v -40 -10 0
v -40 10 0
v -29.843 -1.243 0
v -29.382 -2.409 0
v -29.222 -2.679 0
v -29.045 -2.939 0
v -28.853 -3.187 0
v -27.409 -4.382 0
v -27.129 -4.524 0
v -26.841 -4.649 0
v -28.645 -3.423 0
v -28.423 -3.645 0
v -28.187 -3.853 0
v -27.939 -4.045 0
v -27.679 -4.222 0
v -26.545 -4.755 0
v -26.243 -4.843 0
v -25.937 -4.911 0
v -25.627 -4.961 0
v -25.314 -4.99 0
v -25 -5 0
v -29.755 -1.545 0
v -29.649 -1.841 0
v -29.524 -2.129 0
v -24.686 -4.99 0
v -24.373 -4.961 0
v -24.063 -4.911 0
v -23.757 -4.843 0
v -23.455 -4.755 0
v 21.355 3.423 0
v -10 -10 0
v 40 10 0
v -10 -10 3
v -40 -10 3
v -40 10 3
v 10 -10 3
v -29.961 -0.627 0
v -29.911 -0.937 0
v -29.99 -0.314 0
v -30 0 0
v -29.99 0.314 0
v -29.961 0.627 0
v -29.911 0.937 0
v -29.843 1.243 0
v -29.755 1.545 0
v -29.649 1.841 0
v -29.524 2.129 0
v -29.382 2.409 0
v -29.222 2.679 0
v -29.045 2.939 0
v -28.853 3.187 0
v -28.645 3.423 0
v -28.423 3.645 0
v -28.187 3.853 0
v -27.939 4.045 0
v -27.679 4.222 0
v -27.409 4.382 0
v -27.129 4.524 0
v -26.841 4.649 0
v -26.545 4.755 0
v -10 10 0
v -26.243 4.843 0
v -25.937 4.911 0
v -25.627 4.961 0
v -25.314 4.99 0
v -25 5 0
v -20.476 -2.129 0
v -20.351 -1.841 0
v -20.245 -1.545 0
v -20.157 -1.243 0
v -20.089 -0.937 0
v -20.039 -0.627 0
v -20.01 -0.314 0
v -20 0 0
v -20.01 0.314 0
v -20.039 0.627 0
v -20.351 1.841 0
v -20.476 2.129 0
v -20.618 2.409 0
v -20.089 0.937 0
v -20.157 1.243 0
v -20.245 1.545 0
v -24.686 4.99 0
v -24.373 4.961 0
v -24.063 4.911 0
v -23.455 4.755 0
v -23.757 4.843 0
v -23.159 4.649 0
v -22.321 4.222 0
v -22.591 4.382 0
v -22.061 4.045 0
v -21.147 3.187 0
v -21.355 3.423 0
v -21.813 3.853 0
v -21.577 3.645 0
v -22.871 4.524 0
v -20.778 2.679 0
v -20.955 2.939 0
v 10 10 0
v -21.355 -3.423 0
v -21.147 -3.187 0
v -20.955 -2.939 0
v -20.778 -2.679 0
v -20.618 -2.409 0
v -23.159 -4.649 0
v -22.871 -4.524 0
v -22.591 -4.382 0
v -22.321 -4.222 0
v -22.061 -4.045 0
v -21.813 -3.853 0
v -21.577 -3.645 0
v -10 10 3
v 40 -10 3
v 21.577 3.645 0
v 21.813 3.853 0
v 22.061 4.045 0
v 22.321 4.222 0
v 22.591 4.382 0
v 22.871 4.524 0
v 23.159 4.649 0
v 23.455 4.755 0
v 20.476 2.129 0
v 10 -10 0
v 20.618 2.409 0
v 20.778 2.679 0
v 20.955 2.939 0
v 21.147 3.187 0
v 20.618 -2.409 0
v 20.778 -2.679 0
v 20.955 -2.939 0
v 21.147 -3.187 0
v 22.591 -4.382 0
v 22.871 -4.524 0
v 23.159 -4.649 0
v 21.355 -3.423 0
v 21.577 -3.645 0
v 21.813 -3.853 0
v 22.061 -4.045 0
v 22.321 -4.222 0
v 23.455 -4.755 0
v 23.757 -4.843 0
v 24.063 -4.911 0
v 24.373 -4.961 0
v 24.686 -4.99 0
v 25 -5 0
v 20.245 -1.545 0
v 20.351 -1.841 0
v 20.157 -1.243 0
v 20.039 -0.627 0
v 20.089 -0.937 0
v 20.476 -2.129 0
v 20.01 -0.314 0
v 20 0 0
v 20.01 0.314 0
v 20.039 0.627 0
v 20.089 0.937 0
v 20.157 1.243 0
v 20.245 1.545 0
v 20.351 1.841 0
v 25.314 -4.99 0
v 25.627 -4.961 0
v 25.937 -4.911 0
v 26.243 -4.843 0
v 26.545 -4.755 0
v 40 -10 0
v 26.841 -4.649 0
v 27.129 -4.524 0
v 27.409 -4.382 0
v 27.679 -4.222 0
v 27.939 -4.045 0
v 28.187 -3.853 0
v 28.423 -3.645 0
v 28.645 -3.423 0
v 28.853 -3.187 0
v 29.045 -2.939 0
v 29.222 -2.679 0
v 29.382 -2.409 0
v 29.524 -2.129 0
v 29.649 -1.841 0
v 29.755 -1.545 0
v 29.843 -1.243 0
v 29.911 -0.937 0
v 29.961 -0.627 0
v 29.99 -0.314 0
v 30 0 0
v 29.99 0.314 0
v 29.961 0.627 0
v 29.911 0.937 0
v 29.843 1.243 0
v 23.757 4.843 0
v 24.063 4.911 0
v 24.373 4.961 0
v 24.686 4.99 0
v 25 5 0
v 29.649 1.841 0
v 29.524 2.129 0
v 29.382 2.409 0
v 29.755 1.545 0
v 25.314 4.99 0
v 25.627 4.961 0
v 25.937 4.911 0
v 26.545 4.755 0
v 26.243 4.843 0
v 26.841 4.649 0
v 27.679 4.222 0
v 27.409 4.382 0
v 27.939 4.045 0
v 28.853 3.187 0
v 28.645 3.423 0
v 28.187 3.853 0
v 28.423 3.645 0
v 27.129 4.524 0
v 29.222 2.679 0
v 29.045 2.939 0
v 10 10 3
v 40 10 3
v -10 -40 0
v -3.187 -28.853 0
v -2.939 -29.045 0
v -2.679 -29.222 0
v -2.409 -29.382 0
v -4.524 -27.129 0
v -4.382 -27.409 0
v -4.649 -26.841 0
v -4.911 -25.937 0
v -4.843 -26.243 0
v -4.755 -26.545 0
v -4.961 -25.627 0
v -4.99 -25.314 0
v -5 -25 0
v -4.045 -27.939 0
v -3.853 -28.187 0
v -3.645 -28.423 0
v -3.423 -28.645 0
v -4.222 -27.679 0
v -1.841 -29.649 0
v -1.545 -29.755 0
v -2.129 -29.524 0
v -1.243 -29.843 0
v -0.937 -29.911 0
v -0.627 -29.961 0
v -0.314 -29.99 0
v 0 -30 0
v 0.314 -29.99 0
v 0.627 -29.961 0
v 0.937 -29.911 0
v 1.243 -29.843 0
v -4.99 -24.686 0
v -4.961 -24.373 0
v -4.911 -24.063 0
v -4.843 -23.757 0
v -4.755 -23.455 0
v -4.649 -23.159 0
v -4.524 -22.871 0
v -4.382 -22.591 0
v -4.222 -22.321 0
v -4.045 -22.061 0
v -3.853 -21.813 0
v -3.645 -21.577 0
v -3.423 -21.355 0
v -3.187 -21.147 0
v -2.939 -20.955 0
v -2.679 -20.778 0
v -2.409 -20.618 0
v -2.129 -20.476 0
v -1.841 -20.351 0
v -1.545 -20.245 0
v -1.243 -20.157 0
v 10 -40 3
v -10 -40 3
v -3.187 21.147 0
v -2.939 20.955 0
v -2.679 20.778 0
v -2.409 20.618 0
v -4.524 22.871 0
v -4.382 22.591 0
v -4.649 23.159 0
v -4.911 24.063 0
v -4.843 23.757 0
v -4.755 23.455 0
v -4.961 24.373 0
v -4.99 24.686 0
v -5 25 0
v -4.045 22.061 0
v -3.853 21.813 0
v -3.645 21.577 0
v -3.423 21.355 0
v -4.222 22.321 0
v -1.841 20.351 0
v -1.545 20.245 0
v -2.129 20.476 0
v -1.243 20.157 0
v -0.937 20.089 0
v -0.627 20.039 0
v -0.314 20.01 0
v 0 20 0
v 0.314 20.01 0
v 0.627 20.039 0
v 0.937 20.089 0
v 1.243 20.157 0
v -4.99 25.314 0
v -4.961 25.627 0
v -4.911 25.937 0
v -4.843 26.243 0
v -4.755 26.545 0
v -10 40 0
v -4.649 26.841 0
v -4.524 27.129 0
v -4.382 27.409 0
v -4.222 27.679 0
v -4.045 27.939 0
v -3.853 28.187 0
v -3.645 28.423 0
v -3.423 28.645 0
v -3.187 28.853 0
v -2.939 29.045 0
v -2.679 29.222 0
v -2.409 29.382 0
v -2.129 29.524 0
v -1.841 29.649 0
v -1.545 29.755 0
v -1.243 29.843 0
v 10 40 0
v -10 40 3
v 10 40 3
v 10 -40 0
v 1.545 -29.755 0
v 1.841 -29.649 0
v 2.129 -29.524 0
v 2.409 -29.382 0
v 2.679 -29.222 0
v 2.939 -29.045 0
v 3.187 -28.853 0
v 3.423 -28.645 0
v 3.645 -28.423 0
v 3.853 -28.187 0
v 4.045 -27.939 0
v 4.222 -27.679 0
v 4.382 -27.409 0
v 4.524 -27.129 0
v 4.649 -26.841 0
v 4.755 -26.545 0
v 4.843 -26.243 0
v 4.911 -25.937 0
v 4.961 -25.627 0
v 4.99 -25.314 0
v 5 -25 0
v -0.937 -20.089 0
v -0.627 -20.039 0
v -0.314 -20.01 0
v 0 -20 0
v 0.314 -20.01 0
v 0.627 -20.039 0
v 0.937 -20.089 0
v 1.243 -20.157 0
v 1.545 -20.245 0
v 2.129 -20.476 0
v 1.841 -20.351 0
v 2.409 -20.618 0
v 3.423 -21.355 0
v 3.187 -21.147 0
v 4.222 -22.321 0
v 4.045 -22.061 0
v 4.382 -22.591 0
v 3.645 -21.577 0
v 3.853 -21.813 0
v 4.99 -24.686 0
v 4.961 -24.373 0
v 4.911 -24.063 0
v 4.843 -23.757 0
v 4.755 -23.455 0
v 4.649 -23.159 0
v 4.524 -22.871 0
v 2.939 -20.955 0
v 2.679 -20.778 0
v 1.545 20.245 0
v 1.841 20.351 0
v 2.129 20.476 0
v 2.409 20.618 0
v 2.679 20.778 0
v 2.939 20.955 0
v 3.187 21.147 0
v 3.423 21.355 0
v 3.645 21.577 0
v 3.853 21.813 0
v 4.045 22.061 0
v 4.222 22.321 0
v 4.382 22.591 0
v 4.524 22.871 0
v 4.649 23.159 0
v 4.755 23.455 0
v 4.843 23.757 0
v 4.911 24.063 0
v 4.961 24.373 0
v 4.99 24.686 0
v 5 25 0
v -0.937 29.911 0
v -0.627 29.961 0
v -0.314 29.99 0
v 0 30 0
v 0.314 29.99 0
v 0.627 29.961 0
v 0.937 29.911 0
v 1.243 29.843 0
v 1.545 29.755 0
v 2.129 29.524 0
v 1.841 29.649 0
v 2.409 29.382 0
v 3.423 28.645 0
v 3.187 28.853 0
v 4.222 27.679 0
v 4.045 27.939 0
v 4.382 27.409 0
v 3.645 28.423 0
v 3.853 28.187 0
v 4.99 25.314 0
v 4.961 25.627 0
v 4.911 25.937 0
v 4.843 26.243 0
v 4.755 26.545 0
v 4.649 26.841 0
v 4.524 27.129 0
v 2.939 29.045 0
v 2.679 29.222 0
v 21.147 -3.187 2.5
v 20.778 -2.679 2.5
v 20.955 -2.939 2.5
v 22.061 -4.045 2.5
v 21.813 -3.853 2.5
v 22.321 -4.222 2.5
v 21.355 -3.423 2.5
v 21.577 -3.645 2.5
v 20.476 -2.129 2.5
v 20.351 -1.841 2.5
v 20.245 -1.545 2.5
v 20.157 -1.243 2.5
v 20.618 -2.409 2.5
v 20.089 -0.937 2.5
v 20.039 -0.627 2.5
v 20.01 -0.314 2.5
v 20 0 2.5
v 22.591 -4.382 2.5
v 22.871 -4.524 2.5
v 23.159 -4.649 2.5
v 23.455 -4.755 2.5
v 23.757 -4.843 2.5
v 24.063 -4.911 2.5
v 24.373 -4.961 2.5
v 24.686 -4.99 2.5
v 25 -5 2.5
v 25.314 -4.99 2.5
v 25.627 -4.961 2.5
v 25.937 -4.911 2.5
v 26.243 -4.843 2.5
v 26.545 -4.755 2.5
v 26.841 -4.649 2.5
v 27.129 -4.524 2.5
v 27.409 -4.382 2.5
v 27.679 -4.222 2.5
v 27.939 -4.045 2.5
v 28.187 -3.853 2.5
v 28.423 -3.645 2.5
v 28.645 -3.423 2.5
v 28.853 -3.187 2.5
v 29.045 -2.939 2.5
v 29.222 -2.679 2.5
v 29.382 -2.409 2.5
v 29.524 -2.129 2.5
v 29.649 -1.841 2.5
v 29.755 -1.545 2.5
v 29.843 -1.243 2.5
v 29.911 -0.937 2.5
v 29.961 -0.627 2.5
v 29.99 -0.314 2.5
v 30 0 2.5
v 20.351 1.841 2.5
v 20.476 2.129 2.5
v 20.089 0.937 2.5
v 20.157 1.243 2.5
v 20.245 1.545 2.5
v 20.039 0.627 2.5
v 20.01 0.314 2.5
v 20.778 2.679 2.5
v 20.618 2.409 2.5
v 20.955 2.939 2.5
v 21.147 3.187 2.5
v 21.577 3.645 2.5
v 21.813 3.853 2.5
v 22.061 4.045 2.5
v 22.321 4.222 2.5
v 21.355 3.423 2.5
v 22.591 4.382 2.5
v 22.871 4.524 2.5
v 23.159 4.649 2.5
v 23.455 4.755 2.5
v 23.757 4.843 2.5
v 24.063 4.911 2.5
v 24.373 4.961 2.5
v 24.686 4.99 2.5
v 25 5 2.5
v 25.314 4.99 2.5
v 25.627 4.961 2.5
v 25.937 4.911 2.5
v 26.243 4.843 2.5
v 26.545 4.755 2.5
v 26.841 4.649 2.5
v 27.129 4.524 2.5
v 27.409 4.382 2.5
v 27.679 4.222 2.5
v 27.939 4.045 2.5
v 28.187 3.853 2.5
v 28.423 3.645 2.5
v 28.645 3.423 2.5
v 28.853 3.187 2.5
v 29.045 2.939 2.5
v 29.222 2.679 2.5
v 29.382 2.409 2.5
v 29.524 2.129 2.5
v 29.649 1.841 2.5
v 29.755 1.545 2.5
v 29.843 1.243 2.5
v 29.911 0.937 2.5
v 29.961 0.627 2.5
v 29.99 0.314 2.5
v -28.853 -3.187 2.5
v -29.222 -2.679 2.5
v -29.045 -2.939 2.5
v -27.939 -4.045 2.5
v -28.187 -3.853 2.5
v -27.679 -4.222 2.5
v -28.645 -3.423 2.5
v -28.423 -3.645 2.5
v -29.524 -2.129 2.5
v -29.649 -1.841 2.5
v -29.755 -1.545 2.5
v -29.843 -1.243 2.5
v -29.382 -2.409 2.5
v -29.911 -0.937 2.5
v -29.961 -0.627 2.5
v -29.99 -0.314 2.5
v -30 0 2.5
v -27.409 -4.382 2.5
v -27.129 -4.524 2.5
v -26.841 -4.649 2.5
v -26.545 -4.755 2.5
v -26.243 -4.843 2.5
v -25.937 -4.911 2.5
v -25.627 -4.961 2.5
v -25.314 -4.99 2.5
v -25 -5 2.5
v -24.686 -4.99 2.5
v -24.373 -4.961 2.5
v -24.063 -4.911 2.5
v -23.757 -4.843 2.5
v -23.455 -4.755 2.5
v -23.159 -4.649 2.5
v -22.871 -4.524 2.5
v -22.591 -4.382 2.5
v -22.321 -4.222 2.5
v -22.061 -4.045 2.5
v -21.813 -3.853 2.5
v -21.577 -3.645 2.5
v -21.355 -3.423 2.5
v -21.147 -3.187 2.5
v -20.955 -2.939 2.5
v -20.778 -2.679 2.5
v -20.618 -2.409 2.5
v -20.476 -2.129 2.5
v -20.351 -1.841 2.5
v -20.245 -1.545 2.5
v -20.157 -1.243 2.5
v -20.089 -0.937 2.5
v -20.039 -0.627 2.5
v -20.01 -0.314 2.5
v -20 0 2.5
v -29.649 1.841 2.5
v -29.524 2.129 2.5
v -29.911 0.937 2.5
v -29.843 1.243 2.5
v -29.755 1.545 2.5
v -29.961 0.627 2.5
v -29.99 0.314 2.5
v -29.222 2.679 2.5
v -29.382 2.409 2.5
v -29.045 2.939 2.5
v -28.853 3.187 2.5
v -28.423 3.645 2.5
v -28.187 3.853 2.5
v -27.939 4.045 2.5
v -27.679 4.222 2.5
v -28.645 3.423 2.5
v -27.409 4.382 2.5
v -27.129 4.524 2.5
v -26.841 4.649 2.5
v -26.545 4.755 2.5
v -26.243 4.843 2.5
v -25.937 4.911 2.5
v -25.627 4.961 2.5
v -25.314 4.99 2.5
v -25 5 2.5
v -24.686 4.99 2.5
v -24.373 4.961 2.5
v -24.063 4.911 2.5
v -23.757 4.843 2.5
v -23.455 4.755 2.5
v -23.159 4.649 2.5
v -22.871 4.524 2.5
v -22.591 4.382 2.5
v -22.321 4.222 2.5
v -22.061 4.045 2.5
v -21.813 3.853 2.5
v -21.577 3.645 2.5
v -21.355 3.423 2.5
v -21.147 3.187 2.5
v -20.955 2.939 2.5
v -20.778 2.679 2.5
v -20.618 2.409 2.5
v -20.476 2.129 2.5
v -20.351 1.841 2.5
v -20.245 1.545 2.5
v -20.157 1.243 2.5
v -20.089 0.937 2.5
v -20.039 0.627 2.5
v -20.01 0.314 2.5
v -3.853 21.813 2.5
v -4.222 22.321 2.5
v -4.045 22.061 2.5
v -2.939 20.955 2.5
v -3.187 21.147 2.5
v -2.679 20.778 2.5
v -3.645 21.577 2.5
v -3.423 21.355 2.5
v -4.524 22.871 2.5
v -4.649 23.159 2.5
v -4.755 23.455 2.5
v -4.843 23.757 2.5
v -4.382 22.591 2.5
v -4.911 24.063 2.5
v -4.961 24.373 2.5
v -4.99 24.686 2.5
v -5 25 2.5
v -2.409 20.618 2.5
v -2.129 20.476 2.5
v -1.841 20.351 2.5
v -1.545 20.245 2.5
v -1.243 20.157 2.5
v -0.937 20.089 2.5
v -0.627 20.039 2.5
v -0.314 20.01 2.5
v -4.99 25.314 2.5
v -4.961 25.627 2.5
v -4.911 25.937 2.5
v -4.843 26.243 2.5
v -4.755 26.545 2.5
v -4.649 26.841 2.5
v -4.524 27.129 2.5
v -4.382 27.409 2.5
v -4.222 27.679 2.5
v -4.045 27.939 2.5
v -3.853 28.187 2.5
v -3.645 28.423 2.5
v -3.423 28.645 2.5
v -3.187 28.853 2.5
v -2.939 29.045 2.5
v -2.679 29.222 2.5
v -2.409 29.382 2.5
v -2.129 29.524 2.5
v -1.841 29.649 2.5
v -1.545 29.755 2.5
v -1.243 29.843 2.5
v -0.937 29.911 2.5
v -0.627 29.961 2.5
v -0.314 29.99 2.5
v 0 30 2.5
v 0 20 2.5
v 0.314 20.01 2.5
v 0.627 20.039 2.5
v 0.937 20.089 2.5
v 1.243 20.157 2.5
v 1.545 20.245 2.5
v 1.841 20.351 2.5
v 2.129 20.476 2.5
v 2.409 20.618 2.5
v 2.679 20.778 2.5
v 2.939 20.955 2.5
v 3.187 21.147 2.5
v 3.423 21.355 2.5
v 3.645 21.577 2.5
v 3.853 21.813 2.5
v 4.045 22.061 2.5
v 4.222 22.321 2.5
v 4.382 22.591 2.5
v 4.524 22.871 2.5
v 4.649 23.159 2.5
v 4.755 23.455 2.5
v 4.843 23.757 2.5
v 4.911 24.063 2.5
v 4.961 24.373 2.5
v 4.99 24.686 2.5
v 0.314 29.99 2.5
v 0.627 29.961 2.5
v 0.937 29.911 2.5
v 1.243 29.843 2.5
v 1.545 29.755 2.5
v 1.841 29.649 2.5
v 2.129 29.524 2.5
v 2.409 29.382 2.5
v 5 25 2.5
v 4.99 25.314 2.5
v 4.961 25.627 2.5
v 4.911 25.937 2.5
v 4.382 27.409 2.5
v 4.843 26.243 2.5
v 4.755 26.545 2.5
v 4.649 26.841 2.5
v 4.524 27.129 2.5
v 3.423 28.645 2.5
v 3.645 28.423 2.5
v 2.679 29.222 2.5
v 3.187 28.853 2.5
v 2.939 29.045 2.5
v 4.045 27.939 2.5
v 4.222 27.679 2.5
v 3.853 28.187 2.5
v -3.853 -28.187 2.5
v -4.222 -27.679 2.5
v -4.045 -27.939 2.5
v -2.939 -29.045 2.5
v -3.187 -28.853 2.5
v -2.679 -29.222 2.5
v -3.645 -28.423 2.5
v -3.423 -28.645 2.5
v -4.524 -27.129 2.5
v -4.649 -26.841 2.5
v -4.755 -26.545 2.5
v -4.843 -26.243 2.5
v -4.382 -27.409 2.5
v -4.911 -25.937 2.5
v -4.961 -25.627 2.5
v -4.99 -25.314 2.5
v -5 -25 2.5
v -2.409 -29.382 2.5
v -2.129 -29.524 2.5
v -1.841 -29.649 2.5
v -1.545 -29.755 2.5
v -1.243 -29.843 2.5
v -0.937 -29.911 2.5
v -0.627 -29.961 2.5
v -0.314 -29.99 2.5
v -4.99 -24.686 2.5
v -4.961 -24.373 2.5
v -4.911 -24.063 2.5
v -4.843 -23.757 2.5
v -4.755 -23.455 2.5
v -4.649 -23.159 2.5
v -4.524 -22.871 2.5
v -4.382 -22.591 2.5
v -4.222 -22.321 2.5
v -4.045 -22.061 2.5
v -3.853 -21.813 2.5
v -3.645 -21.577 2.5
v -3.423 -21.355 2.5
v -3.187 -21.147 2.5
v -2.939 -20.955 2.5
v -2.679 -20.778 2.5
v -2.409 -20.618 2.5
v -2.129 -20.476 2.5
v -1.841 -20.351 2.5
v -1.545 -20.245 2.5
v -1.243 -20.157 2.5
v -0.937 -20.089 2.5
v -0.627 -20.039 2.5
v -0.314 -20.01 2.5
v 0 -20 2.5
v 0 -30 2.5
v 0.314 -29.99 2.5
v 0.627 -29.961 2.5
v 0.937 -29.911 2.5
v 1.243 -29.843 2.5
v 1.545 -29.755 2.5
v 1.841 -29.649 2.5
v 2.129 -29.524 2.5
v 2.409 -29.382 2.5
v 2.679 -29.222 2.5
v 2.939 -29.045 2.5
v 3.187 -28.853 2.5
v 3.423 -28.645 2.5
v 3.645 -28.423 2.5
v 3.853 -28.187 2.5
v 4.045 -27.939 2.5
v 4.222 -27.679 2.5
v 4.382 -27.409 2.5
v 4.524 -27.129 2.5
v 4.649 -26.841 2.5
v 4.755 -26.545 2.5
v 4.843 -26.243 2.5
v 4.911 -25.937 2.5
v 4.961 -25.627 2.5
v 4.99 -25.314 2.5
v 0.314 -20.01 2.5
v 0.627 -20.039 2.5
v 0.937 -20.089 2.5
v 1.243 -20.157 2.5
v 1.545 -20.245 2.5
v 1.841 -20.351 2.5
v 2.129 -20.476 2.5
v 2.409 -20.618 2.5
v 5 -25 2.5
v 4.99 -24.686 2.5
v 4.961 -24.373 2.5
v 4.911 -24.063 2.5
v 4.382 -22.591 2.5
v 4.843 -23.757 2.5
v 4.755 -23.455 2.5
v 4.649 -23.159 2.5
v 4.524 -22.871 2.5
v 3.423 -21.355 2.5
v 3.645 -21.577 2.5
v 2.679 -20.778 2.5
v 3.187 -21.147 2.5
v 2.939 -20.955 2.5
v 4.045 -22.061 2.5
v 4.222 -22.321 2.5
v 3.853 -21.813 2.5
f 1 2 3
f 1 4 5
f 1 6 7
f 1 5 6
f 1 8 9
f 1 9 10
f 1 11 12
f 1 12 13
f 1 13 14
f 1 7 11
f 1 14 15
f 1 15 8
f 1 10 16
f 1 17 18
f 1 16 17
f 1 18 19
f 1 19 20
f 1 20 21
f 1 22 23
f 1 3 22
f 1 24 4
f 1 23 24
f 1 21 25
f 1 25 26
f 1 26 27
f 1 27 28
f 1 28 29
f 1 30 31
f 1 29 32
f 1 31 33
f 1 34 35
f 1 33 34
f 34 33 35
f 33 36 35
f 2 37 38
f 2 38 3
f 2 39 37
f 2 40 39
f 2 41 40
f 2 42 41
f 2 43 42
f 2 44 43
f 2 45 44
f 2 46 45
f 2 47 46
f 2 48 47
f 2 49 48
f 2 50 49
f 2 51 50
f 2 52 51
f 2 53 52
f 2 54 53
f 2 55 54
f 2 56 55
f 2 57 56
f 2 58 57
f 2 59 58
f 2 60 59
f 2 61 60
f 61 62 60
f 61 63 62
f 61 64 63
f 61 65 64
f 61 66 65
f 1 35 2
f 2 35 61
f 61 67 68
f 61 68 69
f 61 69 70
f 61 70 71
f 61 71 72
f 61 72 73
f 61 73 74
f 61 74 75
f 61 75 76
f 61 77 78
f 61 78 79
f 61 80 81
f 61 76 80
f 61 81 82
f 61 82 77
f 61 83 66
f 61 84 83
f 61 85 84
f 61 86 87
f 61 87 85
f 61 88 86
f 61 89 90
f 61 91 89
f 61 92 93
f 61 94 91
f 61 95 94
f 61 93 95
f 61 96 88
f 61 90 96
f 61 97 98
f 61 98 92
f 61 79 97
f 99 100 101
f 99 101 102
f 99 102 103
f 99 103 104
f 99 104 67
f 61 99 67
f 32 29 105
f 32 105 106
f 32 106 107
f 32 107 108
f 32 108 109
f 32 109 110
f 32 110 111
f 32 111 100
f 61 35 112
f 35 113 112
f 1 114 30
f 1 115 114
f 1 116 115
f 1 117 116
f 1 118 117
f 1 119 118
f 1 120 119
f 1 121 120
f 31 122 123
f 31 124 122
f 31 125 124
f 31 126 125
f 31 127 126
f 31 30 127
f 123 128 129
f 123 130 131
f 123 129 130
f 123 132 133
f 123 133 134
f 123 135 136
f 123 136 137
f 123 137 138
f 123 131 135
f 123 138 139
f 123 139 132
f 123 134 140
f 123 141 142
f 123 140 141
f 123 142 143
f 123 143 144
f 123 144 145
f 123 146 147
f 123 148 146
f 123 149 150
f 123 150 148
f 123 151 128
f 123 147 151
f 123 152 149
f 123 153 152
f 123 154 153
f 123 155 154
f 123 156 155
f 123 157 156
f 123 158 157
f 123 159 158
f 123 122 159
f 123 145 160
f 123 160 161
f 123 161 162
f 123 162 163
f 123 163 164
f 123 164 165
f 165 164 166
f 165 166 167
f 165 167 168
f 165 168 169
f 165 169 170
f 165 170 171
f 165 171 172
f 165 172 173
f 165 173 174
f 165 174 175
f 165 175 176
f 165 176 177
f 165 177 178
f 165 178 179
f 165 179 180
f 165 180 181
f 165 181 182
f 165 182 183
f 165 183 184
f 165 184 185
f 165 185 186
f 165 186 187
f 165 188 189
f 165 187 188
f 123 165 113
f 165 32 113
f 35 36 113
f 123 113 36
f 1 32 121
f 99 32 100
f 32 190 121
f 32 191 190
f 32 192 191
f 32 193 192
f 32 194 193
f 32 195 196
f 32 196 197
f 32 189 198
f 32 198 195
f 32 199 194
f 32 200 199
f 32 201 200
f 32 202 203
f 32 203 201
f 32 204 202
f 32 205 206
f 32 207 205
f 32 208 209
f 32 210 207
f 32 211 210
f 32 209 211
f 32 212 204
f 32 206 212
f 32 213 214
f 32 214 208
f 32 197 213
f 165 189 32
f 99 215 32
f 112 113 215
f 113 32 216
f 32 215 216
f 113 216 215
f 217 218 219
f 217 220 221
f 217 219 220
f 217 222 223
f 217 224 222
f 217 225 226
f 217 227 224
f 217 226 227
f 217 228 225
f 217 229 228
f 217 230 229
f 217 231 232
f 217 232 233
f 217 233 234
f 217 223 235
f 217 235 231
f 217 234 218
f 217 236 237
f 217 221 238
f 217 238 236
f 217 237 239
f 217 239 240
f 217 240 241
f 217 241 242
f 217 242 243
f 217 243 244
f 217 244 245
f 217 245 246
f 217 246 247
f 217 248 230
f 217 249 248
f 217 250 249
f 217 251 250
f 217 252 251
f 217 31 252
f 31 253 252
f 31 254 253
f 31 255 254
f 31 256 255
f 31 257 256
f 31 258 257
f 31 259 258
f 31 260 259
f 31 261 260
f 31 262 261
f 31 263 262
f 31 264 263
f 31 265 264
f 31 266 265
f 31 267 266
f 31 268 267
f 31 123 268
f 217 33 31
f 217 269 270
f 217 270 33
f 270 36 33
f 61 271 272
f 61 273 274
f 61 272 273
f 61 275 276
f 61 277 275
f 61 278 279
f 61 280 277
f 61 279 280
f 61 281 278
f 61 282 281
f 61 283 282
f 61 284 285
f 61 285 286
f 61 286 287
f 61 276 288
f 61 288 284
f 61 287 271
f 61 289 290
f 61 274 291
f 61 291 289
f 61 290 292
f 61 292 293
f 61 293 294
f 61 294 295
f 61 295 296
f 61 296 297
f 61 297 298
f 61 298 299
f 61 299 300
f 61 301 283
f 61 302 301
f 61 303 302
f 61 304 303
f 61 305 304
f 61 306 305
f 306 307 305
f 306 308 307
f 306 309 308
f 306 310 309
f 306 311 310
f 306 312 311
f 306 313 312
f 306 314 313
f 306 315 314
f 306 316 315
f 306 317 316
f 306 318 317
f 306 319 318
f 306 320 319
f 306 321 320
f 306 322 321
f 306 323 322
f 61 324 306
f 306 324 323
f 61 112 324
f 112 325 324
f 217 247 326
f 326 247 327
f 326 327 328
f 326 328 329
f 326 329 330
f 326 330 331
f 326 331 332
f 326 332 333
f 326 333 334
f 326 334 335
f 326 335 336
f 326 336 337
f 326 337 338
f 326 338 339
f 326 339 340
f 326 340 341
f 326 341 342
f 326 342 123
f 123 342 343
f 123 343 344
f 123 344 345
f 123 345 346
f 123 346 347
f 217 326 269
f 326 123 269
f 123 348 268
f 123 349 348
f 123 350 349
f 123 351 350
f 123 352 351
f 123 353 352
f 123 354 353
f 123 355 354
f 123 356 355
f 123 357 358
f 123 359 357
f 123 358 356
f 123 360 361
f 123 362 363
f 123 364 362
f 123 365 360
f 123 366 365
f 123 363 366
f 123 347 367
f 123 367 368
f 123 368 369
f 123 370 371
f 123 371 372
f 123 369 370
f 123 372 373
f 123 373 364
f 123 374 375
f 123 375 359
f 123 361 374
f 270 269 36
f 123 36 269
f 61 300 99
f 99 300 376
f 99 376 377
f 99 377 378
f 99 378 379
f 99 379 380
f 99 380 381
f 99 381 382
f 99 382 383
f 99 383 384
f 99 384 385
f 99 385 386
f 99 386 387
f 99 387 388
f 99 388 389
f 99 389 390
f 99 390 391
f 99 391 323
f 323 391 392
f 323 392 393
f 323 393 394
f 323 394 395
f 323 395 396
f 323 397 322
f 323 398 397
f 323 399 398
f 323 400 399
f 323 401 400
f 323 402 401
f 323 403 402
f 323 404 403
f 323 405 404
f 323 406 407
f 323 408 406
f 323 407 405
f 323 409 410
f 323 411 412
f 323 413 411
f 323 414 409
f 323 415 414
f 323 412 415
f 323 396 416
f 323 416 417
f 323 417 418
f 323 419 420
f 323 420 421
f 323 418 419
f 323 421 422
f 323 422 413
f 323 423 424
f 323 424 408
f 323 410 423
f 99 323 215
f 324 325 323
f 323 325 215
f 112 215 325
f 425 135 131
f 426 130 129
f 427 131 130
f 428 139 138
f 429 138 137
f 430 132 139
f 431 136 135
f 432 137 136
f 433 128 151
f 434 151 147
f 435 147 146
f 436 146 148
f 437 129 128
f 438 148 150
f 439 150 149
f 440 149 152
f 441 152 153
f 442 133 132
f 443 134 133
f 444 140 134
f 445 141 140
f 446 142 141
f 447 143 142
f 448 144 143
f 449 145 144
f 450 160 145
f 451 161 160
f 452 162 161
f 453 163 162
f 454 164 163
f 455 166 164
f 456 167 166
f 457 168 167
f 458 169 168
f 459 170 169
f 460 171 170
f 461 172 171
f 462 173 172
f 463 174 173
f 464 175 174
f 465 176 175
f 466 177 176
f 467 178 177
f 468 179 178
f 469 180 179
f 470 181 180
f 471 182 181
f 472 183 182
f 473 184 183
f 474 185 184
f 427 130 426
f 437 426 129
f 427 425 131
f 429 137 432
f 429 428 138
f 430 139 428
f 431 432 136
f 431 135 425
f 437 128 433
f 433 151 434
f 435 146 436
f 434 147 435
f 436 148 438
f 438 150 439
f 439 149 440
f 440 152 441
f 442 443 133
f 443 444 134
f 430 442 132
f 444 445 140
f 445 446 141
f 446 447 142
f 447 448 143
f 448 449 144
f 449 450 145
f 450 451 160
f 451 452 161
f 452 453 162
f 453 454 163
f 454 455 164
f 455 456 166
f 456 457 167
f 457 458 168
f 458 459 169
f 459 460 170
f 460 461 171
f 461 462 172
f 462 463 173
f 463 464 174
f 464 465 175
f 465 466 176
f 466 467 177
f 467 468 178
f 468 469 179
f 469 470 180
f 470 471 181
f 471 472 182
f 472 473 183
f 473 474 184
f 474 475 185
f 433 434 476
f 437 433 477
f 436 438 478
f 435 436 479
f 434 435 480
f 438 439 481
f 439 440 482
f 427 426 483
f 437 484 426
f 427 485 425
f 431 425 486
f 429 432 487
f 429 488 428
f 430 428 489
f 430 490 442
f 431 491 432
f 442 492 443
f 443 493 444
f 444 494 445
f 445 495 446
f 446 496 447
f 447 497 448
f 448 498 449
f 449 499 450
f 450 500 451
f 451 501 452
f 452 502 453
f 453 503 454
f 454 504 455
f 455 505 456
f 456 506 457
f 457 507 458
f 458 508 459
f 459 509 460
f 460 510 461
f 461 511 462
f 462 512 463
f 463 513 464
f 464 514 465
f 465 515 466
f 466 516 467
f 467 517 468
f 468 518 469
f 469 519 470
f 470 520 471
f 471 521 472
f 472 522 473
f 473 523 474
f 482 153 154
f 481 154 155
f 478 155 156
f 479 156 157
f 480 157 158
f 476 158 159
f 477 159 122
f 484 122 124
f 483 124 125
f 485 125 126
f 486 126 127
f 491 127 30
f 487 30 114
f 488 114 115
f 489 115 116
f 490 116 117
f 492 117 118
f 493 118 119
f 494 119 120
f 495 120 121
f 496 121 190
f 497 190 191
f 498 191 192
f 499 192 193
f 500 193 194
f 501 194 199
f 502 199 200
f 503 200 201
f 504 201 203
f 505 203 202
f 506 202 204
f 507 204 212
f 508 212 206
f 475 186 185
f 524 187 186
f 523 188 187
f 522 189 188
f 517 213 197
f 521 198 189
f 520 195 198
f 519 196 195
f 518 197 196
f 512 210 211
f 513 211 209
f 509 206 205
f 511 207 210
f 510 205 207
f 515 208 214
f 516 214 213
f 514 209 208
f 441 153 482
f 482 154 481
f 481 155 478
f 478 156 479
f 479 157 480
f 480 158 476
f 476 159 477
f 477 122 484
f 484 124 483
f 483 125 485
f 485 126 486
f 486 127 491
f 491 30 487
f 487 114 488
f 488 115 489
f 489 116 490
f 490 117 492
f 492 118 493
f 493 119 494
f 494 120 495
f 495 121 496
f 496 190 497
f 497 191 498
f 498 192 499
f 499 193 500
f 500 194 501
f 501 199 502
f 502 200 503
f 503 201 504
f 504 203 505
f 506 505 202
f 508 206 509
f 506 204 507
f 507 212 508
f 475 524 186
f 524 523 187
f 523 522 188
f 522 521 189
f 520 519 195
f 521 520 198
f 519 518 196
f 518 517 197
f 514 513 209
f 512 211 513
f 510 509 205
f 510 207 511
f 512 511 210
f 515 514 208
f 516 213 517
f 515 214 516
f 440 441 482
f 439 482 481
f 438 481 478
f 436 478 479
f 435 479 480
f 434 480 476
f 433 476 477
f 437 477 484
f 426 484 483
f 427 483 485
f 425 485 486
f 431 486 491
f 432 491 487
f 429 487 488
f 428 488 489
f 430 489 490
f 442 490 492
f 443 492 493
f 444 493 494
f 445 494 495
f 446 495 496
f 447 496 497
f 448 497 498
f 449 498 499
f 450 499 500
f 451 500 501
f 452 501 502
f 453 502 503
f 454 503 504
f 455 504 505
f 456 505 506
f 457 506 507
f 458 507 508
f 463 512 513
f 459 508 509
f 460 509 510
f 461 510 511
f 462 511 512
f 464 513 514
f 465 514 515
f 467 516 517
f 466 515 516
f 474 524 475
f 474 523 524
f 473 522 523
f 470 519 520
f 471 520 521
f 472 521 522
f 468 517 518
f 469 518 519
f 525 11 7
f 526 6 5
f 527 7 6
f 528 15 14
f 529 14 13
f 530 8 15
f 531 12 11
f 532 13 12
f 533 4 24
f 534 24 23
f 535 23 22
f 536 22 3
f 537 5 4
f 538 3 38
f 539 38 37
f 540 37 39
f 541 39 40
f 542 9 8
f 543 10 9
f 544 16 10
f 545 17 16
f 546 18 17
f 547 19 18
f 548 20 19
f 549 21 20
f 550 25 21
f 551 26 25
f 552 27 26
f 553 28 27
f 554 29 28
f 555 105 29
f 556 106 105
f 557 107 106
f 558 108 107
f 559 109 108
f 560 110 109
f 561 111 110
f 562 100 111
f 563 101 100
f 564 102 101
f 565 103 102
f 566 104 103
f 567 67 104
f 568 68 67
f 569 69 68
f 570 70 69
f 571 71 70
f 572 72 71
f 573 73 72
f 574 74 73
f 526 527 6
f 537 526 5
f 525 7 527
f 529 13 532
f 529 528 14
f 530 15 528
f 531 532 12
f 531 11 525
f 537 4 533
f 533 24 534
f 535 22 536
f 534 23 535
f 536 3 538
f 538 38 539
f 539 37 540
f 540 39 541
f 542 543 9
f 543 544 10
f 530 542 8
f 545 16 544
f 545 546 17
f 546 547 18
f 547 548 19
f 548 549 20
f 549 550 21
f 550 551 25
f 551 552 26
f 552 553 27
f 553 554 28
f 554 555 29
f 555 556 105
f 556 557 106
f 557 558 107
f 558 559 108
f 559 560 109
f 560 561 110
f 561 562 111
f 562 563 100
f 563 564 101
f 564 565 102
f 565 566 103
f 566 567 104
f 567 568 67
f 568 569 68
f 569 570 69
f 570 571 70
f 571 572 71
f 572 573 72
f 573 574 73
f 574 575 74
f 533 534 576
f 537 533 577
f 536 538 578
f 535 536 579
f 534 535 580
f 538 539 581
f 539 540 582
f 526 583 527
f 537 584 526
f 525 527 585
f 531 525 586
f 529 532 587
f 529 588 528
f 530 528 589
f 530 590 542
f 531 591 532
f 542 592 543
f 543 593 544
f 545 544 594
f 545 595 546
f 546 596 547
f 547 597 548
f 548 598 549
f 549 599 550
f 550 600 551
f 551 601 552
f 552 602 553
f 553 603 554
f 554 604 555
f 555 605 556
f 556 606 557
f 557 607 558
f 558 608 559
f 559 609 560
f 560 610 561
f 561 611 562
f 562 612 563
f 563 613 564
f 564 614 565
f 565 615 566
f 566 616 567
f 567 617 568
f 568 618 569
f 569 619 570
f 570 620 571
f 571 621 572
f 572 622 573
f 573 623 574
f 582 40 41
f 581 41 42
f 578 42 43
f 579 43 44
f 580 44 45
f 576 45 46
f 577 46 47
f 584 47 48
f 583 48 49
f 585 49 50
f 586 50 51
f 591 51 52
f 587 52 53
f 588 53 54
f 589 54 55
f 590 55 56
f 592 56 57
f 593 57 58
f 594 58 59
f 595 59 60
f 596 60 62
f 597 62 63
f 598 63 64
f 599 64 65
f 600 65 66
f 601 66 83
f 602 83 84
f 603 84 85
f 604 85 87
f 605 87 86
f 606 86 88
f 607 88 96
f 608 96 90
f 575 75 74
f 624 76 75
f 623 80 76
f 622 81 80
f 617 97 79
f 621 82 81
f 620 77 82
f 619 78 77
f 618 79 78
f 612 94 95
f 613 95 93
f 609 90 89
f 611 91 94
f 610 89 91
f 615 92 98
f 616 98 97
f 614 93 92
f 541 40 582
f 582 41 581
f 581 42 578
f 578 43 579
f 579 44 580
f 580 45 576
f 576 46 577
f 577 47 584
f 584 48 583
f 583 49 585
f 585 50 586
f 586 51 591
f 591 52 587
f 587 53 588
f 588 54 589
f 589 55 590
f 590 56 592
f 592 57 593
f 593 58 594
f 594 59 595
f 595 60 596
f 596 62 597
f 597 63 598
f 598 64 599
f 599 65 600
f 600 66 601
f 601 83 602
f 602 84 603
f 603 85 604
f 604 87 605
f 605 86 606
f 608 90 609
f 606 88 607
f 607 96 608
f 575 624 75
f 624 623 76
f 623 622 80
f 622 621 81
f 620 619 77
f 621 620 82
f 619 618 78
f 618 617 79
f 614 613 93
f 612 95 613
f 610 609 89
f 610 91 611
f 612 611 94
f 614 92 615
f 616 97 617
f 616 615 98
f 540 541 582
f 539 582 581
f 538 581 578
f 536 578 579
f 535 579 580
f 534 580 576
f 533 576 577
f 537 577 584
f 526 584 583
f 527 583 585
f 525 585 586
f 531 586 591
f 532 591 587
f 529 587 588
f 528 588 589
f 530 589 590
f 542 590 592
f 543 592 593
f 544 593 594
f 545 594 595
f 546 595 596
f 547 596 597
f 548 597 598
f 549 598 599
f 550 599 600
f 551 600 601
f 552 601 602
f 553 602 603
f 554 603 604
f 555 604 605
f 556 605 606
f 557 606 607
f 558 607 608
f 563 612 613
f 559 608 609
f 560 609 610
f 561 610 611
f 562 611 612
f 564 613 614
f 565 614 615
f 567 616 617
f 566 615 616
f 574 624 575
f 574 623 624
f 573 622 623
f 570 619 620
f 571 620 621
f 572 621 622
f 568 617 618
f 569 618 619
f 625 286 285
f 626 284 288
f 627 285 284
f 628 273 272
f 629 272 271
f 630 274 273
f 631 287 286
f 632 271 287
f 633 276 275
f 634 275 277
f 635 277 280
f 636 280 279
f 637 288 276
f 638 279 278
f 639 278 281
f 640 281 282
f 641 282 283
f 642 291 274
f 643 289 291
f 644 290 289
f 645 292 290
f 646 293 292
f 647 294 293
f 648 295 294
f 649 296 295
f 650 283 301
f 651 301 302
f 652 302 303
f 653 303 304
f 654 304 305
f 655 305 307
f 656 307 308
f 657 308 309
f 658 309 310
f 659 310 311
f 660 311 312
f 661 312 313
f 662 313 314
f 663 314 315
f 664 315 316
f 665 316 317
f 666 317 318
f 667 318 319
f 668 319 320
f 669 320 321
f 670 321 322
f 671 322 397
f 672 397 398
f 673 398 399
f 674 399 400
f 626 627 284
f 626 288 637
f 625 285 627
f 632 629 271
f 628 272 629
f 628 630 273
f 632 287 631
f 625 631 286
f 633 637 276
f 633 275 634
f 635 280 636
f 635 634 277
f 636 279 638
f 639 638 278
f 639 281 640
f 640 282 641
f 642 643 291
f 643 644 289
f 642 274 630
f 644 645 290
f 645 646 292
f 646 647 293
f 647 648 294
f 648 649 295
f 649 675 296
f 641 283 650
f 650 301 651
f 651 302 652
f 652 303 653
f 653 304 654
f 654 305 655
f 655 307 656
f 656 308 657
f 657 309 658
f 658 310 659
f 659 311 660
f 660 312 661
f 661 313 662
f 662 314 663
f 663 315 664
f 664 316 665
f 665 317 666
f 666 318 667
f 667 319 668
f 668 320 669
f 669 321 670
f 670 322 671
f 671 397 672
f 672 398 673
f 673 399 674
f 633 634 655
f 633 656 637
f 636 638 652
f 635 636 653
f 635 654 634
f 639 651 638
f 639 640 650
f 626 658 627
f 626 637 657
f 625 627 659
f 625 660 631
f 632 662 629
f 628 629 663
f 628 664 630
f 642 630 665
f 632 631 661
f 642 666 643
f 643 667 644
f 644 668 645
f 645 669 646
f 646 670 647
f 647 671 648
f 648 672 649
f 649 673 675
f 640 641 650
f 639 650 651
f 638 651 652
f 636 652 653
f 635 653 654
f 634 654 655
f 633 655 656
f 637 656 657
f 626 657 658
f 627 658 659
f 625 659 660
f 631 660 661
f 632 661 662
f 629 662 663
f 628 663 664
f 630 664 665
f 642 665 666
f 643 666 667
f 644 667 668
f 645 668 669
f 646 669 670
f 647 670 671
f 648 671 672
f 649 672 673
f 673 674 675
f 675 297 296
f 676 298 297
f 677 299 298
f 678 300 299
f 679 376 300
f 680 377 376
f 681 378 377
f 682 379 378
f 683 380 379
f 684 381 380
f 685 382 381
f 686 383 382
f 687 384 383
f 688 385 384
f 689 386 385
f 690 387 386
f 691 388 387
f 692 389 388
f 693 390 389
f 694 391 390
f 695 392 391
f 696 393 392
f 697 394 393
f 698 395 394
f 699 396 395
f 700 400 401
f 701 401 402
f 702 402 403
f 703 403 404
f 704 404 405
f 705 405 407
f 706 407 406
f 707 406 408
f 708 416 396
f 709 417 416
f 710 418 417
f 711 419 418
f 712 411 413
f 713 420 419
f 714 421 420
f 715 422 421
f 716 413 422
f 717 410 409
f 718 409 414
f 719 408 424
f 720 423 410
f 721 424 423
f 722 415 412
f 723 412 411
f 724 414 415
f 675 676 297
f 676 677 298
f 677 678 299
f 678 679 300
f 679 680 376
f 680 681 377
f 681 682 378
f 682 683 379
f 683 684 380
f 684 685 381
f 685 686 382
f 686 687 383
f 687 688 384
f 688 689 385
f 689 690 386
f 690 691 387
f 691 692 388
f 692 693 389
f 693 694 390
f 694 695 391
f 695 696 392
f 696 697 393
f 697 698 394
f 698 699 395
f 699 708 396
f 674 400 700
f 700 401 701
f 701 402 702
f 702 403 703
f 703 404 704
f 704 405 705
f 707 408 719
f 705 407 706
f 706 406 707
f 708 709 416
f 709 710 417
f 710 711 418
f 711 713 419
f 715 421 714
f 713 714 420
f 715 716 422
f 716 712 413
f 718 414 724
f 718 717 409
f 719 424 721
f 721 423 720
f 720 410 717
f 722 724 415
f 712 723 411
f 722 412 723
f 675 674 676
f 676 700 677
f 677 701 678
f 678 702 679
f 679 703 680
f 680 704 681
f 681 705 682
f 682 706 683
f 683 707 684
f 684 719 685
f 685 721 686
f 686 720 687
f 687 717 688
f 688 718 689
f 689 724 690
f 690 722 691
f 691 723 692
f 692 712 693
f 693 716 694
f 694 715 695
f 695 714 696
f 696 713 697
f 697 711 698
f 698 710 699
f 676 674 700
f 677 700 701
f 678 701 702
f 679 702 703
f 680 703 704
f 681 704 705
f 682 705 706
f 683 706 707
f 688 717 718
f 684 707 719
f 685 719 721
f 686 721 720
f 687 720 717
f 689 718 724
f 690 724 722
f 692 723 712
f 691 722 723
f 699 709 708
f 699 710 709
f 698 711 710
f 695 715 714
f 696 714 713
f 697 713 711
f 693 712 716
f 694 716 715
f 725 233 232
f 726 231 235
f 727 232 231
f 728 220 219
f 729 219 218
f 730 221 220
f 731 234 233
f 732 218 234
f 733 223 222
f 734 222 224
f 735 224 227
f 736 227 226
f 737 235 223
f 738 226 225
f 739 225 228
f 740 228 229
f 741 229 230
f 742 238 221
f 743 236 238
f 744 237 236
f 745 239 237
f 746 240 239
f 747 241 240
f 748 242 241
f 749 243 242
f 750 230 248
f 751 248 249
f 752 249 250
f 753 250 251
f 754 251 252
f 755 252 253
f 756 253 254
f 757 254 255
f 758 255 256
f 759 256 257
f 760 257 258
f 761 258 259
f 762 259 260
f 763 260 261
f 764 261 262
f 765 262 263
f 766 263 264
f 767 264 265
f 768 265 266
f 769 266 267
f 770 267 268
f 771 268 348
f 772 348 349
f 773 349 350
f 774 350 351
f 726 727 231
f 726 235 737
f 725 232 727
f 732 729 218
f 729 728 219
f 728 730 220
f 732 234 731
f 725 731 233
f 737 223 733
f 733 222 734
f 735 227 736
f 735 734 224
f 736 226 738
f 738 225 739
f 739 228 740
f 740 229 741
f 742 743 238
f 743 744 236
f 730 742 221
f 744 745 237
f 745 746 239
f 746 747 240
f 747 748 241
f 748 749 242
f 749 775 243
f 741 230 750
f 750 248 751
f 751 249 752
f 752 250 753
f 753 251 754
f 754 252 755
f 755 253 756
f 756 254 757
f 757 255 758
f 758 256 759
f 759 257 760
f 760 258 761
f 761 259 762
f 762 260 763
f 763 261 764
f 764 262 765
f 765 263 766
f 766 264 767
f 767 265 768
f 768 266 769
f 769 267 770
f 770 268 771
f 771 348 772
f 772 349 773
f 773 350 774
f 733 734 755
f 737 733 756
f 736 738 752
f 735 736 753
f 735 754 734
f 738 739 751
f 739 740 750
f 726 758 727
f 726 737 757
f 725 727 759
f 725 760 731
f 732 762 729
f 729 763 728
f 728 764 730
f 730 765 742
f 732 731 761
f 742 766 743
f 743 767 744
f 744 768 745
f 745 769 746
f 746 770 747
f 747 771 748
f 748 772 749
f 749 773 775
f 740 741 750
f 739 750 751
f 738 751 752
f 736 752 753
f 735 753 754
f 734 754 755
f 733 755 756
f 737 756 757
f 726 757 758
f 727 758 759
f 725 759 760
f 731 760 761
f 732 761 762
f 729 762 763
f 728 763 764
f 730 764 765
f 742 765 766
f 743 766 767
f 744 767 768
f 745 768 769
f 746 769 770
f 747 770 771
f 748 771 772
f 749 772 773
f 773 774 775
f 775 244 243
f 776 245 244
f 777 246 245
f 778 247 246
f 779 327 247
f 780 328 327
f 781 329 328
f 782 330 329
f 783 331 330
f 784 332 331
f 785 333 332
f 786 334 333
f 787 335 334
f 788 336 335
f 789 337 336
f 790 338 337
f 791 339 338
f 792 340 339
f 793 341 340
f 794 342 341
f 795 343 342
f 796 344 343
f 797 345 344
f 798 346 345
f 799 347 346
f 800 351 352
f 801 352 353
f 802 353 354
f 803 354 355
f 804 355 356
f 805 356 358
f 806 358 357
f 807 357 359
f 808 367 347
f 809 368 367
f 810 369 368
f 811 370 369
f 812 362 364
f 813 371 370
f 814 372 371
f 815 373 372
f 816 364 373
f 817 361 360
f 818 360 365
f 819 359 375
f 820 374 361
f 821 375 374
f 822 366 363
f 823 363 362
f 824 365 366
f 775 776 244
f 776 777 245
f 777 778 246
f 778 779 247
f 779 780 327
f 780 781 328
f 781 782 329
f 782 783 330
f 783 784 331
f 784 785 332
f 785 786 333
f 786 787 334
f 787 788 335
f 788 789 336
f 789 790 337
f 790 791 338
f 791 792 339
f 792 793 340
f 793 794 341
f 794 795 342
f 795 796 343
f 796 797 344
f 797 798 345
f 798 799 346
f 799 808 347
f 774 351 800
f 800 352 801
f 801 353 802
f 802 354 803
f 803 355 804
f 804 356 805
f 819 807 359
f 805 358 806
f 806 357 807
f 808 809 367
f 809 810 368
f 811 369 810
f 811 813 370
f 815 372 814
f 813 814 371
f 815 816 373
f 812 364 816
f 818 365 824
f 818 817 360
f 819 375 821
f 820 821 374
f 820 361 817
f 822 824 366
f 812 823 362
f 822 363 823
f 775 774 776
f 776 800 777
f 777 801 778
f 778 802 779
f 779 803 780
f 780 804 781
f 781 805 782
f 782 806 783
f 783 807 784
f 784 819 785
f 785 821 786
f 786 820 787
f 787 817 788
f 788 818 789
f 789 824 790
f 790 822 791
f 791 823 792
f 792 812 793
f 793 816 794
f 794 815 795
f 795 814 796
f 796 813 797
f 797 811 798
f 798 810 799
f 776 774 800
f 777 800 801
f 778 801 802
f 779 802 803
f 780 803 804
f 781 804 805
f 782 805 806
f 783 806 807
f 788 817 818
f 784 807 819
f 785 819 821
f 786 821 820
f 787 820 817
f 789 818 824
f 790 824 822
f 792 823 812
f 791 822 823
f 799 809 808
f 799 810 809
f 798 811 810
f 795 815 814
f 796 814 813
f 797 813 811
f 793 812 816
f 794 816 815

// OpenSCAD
/*
 * OpenSCAD Script for a Multi-Measurement Calibration Cross
 *
 * This shape is designed to be a quick print (low height)
 * that provides multiple measurements for more
 * accurate shrinkage and hole compensation calculations.
 *
 * By averaging multiple measurements, you can
 * minimize the impact of any single small caliper error.
 */

// --- Main Parameters ---

total_length = 80;  // Total length/width of the cross
arm_width = 20;     // Width of each arm
height = 3;         // Height of the object (keeps print time low)
hole_diameter = 10; // Diameter of the small test holes
hole_position = 25; // Distance of holes from the center
smoothness = 100;   // $fn for cylinders (makes holes round)

// --- Main Body (Cross Shape) ---
module main_cross() {
    // Center the object at the origin
    translate([0, 0, height/2]) {
        union() {
            // X-Arm
            cube([total_length, arm_width, height], center = true);
            // Y-Arm
            cube([arm_width, total_length, height], center = true);
        }
    }
}

// --- Holes Module ---
module test_holes() {
    // Use height+2 as a "cutter" to ensure it goes all the way through
    cutter_height = height + 2; 
    
    // Hole in positive X-Arm
    translate([hole_position, 0, 0]) {
        cylinder(d = hole_diameter, h = cutter_height, center = true, $fn = smoothness);
    }
    
    // Hole in negative X-Arm
    translate([-hole_position, 0, 0]) {
        cylinder(d = hole_diameter, h = cutter_height, center = true, $fn = smoothness);
    }
    
    // Hole in positive Y-Arm
    translate([0, hole_position, 0]) {
        cylinder(d = hole_diameter, h = cutter_height, center = true, $fn = smoothness);
    }
    
    // Hole in negative Y-Arm
    translate([0, -hole_position, 0]) {
        cylinder(d = hole_diameter, h = cutter_height, center = true, $fn = smoothness);
    }
}

// --- Final Assembly ---
// Subtract the holes from the main cross
difference() {
    main_cross();
    test_holes();
}

/*
 * --- HOW TO USE THIS MODEL ---
 * 1. In OpenSCAD, press F6 to render, then export as STL.
 * 2. Print the new STL.
 * 3. With your calipers, take 8 measurements:
 *
 * Outer Measurements (for Shrinkage):
 * - A: Total X-length (Designed: 80mm)
 * - B: Total Y-length (Designed: 80mm)
 * - C: X-arm width (Designed: 20mm)
 * - D: Y-arm width (Designed: 20mm)
 *
 * Inner Measurements (for Hole Comp.):
 * - E: Hole 1 diameter (Designed: 10mm)
 * - F: Hole 2 diameter (Designed: 10mm)
 * - G: Hole 3 diameter (Designed: 10mm)
 * - H: Hole 4 diameter (Designed: 10mm)
 *
 * 4. Go to the web calculator:
 *
 * - In "1. Outer Dimensions":
 * - Set Designed Outer: (80+80+20+20) / 4 = 50
 * - Set Measured X: (A+B) / 2
 * - Set Measured Y: (C+D) / 2
 * - OR, even better:
 * - Set Designed Outer: 50
 * - Set Measured X: (A+B+C+D) / 4
 * - Set Measured Y: (A+B+C+D) / 4  <-- Use the same average
 *
 * - In "2. Inner Dimensions":
 * - Set Designed Hole: 10
 * - Set Measured Hole: (E+F+G+H) / 4
 *
 * 5. Click "Calculate". This will give you a very accurate,
 * statistically-sound result.
 */
